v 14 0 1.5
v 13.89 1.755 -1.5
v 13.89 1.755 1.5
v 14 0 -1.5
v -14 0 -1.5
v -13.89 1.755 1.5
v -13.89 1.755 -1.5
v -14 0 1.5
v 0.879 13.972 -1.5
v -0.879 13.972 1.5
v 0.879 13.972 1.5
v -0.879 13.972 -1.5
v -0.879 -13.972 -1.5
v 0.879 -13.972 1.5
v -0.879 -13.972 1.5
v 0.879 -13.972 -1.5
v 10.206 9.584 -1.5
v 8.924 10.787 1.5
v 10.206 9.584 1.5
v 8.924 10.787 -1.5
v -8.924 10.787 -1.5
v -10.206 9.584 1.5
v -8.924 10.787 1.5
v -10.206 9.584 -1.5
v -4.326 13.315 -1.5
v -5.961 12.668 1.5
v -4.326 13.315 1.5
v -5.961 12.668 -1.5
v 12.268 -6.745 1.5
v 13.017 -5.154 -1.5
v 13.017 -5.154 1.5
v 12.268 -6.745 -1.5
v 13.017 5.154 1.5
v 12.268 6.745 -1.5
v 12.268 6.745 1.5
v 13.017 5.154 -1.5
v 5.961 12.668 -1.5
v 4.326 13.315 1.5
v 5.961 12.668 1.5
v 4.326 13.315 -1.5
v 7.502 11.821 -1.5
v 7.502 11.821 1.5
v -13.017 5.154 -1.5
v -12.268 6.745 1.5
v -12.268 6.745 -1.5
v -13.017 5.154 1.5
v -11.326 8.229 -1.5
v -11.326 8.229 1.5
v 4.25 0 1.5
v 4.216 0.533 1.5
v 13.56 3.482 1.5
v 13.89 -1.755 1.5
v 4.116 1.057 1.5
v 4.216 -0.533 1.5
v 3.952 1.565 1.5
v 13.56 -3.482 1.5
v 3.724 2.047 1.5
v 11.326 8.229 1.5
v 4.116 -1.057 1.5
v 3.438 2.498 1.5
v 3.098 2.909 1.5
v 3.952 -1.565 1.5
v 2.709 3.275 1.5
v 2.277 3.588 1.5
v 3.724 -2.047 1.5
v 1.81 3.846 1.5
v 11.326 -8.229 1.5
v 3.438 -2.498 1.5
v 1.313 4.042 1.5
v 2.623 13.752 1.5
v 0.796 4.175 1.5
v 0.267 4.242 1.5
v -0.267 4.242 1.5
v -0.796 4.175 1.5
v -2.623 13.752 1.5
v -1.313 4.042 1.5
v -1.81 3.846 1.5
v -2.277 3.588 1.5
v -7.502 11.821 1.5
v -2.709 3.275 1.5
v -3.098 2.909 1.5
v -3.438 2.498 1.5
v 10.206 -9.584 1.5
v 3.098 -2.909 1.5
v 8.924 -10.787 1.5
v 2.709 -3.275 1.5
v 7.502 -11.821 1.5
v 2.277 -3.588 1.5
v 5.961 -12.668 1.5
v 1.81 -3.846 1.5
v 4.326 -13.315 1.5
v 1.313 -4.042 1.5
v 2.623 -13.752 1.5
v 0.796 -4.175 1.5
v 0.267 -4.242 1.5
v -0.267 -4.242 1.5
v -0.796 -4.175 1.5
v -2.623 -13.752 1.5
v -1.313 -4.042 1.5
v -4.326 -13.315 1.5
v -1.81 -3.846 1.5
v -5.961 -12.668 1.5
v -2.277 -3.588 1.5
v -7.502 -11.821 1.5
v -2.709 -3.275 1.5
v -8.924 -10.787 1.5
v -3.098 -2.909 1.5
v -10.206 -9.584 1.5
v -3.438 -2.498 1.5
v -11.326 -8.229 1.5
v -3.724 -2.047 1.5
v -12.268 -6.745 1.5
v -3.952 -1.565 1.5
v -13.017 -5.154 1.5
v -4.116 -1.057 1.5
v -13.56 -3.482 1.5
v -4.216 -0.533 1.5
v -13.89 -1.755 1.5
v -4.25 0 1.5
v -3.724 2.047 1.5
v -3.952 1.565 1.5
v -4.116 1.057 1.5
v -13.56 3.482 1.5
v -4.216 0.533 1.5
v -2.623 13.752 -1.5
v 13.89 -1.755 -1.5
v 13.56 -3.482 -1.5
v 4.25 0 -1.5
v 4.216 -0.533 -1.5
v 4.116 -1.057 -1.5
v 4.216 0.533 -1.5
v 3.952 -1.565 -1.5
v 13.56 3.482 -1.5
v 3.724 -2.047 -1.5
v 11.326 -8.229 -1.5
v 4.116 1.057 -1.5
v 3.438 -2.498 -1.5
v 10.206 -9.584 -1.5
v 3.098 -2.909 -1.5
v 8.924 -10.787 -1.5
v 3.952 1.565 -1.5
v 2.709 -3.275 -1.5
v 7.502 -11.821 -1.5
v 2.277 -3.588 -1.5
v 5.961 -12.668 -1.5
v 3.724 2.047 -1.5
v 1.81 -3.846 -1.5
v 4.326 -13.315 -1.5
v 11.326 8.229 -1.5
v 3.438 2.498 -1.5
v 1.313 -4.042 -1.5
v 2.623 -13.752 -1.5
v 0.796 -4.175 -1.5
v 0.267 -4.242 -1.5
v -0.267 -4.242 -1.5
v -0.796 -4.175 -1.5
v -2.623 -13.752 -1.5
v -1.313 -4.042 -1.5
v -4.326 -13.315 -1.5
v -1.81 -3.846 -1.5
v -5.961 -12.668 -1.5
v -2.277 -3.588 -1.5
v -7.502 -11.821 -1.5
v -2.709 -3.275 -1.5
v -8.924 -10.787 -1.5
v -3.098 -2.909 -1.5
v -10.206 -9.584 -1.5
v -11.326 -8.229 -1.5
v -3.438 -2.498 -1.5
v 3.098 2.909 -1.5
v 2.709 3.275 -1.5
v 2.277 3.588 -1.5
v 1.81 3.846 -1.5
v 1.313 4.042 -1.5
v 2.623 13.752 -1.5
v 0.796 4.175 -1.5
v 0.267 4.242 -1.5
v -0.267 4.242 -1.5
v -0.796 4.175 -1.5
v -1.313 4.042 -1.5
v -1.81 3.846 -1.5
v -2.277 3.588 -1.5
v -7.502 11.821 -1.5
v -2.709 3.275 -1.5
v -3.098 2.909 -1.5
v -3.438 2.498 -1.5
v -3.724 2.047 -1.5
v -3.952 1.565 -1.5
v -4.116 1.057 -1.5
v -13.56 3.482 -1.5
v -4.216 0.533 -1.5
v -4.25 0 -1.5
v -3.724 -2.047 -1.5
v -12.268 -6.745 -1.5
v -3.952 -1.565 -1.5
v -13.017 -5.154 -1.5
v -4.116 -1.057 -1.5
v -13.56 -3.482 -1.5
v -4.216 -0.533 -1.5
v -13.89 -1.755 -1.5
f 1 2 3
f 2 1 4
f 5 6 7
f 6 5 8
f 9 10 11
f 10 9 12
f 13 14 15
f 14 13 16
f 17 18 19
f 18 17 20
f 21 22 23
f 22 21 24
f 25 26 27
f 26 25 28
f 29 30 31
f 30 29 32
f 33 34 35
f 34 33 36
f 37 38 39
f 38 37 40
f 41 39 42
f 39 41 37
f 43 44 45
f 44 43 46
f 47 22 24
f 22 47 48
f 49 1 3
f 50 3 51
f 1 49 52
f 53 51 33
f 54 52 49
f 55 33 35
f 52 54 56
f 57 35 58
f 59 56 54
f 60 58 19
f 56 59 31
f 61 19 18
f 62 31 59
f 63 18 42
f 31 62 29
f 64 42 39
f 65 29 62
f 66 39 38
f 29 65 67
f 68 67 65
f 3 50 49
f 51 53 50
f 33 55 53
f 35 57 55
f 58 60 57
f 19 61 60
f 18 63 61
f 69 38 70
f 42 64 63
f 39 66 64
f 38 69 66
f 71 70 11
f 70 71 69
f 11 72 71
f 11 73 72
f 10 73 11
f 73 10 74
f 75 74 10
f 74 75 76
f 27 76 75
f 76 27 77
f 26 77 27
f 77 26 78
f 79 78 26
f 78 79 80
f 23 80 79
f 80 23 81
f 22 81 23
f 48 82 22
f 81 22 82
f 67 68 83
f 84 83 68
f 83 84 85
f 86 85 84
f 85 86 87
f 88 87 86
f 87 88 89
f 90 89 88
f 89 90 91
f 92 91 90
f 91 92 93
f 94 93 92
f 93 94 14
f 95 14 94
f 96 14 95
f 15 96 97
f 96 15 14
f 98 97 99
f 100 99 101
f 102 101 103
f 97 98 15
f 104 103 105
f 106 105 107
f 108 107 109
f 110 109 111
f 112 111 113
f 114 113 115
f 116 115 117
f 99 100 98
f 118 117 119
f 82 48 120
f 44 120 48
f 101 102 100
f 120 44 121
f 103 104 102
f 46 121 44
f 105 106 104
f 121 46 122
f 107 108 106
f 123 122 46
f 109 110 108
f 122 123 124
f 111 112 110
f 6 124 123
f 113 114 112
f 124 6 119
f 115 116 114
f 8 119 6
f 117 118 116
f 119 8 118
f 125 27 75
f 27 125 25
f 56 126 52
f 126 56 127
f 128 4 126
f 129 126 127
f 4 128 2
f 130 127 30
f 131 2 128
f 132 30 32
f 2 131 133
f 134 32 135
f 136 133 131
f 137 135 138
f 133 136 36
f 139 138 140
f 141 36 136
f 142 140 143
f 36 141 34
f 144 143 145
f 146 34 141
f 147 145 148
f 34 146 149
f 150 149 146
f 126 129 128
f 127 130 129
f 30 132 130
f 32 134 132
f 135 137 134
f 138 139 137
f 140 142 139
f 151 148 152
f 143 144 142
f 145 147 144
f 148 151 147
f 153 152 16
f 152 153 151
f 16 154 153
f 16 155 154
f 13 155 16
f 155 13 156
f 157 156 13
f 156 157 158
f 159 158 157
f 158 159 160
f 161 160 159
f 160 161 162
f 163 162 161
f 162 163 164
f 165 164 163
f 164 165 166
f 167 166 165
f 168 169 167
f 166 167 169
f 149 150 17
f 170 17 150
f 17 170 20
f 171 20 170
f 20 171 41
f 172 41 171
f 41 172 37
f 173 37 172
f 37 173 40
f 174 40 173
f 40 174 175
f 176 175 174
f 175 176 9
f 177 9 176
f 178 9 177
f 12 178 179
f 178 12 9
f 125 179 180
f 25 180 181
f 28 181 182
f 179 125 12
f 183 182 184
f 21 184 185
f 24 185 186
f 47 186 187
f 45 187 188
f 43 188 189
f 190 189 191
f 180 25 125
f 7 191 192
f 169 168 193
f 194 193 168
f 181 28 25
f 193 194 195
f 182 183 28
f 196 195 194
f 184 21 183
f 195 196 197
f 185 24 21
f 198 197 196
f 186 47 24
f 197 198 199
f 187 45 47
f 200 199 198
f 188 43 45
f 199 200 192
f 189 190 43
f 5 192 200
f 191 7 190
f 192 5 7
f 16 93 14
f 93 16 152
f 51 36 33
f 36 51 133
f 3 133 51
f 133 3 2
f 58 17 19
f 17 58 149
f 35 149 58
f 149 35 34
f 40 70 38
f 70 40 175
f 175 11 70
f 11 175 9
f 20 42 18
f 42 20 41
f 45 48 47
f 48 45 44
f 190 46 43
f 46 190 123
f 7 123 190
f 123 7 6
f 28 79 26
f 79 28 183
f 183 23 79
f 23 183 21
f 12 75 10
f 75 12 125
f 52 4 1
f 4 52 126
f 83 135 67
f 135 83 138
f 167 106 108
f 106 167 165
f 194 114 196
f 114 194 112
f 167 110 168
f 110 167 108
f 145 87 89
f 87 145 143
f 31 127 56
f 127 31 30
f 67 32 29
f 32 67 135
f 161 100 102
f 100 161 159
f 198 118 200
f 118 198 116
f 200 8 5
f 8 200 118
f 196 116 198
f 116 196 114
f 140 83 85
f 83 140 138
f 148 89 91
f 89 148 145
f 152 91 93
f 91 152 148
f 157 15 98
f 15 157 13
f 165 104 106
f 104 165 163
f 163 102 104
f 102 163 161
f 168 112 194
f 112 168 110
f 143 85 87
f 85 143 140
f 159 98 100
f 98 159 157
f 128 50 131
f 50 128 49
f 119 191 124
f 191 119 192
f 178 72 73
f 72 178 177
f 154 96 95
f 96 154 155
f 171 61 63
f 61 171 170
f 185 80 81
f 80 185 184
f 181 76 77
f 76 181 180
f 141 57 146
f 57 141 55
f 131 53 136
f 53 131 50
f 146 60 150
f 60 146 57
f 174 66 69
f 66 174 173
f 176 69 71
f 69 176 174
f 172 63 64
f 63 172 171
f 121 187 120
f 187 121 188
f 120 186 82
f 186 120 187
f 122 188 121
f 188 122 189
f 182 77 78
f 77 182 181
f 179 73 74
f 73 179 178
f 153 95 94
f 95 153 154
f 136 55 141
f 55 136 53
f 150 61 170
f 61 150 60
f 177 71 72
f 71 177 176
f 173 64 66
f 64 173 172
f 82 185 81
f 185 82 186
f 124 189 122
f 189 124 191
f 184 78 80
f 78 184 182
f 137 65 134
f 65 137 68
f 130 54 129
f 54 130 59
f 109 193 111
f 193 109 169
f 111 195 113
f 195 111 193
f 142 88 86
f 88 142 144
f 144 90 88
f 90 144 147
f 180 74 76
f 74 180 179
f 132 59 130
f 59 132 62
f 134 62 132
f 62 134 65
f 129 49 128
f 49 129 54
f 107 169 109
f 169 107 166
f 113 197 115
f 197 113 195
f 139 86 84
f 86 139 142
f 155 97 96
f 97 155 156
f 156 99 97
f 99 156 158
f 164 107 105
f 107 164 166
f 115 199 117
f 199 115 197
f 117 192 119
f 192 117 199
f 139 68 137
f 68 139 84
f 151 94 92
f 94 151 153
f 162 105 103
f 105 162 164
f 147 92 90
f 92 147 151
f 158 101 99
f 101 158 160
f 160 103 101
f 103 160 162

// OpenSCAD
$fn = 50;


difference() {
	union() {
		translate(v = [0, 0, -1.5000000000]) {
			cylinder(h = 3, r = 14.0000000000);
		}
	}
	union() {
		translate(v = [0, 0, -100.0000000000]) {
			cylinder(h = 200, r = 4.2500000000);
		}
	}
}
